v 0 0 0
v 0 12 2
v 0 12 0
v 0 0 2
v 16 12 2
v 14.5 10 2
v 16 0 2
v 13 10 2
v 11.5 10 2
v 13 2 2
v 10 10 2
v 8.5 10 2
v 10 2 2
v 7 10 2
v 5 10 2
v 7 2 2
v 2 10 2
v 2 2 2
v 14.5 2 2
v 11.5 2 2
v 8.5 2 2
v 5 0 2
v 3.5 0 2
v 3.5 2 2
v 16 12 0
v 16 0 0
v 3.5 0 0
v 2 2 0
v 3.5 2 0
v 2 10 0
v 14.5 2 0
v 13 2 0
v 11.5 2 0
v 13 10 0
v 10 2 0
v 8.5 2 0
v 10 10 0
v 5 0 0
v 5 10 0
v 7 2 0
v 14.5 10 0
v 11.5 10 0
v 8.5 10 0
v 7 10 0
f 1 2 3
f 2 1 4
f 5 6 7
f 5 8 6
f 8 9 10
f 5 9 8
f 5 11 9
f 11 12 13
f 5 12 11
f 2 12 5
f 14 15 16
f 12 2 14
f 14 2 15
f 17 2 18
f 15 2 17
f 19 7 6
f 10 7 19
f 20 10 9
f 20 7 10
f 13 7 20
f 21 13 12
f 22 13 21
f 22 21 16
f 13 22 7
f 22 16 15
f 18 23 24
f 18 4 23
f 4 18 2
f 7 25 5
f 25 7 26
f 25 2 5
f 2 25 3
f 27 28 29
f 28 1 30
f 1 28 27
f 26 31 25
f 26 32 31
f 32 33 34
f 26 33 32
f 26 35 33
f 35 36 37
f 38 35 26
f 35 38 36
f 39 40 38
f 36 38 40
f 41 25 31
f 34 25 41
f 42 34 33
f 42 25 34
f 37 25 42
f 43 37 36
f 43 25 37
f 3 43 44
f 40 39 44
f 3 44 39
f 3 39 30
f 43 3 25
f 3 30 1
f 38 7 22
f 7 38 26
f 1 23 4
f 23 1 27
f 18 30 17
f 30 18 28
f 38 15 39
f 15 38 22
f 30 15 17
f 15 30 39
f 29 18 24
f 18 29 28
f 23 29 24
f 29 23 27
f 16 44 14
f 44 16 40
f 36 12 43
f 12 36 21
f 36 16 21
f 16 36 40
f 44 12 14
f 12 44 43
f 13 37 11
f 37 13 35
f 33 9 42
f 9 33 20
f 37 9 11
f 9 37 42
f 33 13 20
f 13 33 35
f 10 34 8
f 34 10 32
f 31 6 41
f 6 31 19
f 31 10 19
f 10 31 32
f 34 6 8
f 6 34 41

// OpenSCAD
difference() {
    cube([16,12,2]);
    translate([2,2,0]) cube([3,8,4]);
    translate([3.5,0,0]) cube([1.5,8,4]);
    translate([7,2,0]) cube([1.5,8,4]);
    translate([10,2,0]) cube([1.5,8,4]);
    translate([13,2,0]) cube([1.5,8,4]);
}
